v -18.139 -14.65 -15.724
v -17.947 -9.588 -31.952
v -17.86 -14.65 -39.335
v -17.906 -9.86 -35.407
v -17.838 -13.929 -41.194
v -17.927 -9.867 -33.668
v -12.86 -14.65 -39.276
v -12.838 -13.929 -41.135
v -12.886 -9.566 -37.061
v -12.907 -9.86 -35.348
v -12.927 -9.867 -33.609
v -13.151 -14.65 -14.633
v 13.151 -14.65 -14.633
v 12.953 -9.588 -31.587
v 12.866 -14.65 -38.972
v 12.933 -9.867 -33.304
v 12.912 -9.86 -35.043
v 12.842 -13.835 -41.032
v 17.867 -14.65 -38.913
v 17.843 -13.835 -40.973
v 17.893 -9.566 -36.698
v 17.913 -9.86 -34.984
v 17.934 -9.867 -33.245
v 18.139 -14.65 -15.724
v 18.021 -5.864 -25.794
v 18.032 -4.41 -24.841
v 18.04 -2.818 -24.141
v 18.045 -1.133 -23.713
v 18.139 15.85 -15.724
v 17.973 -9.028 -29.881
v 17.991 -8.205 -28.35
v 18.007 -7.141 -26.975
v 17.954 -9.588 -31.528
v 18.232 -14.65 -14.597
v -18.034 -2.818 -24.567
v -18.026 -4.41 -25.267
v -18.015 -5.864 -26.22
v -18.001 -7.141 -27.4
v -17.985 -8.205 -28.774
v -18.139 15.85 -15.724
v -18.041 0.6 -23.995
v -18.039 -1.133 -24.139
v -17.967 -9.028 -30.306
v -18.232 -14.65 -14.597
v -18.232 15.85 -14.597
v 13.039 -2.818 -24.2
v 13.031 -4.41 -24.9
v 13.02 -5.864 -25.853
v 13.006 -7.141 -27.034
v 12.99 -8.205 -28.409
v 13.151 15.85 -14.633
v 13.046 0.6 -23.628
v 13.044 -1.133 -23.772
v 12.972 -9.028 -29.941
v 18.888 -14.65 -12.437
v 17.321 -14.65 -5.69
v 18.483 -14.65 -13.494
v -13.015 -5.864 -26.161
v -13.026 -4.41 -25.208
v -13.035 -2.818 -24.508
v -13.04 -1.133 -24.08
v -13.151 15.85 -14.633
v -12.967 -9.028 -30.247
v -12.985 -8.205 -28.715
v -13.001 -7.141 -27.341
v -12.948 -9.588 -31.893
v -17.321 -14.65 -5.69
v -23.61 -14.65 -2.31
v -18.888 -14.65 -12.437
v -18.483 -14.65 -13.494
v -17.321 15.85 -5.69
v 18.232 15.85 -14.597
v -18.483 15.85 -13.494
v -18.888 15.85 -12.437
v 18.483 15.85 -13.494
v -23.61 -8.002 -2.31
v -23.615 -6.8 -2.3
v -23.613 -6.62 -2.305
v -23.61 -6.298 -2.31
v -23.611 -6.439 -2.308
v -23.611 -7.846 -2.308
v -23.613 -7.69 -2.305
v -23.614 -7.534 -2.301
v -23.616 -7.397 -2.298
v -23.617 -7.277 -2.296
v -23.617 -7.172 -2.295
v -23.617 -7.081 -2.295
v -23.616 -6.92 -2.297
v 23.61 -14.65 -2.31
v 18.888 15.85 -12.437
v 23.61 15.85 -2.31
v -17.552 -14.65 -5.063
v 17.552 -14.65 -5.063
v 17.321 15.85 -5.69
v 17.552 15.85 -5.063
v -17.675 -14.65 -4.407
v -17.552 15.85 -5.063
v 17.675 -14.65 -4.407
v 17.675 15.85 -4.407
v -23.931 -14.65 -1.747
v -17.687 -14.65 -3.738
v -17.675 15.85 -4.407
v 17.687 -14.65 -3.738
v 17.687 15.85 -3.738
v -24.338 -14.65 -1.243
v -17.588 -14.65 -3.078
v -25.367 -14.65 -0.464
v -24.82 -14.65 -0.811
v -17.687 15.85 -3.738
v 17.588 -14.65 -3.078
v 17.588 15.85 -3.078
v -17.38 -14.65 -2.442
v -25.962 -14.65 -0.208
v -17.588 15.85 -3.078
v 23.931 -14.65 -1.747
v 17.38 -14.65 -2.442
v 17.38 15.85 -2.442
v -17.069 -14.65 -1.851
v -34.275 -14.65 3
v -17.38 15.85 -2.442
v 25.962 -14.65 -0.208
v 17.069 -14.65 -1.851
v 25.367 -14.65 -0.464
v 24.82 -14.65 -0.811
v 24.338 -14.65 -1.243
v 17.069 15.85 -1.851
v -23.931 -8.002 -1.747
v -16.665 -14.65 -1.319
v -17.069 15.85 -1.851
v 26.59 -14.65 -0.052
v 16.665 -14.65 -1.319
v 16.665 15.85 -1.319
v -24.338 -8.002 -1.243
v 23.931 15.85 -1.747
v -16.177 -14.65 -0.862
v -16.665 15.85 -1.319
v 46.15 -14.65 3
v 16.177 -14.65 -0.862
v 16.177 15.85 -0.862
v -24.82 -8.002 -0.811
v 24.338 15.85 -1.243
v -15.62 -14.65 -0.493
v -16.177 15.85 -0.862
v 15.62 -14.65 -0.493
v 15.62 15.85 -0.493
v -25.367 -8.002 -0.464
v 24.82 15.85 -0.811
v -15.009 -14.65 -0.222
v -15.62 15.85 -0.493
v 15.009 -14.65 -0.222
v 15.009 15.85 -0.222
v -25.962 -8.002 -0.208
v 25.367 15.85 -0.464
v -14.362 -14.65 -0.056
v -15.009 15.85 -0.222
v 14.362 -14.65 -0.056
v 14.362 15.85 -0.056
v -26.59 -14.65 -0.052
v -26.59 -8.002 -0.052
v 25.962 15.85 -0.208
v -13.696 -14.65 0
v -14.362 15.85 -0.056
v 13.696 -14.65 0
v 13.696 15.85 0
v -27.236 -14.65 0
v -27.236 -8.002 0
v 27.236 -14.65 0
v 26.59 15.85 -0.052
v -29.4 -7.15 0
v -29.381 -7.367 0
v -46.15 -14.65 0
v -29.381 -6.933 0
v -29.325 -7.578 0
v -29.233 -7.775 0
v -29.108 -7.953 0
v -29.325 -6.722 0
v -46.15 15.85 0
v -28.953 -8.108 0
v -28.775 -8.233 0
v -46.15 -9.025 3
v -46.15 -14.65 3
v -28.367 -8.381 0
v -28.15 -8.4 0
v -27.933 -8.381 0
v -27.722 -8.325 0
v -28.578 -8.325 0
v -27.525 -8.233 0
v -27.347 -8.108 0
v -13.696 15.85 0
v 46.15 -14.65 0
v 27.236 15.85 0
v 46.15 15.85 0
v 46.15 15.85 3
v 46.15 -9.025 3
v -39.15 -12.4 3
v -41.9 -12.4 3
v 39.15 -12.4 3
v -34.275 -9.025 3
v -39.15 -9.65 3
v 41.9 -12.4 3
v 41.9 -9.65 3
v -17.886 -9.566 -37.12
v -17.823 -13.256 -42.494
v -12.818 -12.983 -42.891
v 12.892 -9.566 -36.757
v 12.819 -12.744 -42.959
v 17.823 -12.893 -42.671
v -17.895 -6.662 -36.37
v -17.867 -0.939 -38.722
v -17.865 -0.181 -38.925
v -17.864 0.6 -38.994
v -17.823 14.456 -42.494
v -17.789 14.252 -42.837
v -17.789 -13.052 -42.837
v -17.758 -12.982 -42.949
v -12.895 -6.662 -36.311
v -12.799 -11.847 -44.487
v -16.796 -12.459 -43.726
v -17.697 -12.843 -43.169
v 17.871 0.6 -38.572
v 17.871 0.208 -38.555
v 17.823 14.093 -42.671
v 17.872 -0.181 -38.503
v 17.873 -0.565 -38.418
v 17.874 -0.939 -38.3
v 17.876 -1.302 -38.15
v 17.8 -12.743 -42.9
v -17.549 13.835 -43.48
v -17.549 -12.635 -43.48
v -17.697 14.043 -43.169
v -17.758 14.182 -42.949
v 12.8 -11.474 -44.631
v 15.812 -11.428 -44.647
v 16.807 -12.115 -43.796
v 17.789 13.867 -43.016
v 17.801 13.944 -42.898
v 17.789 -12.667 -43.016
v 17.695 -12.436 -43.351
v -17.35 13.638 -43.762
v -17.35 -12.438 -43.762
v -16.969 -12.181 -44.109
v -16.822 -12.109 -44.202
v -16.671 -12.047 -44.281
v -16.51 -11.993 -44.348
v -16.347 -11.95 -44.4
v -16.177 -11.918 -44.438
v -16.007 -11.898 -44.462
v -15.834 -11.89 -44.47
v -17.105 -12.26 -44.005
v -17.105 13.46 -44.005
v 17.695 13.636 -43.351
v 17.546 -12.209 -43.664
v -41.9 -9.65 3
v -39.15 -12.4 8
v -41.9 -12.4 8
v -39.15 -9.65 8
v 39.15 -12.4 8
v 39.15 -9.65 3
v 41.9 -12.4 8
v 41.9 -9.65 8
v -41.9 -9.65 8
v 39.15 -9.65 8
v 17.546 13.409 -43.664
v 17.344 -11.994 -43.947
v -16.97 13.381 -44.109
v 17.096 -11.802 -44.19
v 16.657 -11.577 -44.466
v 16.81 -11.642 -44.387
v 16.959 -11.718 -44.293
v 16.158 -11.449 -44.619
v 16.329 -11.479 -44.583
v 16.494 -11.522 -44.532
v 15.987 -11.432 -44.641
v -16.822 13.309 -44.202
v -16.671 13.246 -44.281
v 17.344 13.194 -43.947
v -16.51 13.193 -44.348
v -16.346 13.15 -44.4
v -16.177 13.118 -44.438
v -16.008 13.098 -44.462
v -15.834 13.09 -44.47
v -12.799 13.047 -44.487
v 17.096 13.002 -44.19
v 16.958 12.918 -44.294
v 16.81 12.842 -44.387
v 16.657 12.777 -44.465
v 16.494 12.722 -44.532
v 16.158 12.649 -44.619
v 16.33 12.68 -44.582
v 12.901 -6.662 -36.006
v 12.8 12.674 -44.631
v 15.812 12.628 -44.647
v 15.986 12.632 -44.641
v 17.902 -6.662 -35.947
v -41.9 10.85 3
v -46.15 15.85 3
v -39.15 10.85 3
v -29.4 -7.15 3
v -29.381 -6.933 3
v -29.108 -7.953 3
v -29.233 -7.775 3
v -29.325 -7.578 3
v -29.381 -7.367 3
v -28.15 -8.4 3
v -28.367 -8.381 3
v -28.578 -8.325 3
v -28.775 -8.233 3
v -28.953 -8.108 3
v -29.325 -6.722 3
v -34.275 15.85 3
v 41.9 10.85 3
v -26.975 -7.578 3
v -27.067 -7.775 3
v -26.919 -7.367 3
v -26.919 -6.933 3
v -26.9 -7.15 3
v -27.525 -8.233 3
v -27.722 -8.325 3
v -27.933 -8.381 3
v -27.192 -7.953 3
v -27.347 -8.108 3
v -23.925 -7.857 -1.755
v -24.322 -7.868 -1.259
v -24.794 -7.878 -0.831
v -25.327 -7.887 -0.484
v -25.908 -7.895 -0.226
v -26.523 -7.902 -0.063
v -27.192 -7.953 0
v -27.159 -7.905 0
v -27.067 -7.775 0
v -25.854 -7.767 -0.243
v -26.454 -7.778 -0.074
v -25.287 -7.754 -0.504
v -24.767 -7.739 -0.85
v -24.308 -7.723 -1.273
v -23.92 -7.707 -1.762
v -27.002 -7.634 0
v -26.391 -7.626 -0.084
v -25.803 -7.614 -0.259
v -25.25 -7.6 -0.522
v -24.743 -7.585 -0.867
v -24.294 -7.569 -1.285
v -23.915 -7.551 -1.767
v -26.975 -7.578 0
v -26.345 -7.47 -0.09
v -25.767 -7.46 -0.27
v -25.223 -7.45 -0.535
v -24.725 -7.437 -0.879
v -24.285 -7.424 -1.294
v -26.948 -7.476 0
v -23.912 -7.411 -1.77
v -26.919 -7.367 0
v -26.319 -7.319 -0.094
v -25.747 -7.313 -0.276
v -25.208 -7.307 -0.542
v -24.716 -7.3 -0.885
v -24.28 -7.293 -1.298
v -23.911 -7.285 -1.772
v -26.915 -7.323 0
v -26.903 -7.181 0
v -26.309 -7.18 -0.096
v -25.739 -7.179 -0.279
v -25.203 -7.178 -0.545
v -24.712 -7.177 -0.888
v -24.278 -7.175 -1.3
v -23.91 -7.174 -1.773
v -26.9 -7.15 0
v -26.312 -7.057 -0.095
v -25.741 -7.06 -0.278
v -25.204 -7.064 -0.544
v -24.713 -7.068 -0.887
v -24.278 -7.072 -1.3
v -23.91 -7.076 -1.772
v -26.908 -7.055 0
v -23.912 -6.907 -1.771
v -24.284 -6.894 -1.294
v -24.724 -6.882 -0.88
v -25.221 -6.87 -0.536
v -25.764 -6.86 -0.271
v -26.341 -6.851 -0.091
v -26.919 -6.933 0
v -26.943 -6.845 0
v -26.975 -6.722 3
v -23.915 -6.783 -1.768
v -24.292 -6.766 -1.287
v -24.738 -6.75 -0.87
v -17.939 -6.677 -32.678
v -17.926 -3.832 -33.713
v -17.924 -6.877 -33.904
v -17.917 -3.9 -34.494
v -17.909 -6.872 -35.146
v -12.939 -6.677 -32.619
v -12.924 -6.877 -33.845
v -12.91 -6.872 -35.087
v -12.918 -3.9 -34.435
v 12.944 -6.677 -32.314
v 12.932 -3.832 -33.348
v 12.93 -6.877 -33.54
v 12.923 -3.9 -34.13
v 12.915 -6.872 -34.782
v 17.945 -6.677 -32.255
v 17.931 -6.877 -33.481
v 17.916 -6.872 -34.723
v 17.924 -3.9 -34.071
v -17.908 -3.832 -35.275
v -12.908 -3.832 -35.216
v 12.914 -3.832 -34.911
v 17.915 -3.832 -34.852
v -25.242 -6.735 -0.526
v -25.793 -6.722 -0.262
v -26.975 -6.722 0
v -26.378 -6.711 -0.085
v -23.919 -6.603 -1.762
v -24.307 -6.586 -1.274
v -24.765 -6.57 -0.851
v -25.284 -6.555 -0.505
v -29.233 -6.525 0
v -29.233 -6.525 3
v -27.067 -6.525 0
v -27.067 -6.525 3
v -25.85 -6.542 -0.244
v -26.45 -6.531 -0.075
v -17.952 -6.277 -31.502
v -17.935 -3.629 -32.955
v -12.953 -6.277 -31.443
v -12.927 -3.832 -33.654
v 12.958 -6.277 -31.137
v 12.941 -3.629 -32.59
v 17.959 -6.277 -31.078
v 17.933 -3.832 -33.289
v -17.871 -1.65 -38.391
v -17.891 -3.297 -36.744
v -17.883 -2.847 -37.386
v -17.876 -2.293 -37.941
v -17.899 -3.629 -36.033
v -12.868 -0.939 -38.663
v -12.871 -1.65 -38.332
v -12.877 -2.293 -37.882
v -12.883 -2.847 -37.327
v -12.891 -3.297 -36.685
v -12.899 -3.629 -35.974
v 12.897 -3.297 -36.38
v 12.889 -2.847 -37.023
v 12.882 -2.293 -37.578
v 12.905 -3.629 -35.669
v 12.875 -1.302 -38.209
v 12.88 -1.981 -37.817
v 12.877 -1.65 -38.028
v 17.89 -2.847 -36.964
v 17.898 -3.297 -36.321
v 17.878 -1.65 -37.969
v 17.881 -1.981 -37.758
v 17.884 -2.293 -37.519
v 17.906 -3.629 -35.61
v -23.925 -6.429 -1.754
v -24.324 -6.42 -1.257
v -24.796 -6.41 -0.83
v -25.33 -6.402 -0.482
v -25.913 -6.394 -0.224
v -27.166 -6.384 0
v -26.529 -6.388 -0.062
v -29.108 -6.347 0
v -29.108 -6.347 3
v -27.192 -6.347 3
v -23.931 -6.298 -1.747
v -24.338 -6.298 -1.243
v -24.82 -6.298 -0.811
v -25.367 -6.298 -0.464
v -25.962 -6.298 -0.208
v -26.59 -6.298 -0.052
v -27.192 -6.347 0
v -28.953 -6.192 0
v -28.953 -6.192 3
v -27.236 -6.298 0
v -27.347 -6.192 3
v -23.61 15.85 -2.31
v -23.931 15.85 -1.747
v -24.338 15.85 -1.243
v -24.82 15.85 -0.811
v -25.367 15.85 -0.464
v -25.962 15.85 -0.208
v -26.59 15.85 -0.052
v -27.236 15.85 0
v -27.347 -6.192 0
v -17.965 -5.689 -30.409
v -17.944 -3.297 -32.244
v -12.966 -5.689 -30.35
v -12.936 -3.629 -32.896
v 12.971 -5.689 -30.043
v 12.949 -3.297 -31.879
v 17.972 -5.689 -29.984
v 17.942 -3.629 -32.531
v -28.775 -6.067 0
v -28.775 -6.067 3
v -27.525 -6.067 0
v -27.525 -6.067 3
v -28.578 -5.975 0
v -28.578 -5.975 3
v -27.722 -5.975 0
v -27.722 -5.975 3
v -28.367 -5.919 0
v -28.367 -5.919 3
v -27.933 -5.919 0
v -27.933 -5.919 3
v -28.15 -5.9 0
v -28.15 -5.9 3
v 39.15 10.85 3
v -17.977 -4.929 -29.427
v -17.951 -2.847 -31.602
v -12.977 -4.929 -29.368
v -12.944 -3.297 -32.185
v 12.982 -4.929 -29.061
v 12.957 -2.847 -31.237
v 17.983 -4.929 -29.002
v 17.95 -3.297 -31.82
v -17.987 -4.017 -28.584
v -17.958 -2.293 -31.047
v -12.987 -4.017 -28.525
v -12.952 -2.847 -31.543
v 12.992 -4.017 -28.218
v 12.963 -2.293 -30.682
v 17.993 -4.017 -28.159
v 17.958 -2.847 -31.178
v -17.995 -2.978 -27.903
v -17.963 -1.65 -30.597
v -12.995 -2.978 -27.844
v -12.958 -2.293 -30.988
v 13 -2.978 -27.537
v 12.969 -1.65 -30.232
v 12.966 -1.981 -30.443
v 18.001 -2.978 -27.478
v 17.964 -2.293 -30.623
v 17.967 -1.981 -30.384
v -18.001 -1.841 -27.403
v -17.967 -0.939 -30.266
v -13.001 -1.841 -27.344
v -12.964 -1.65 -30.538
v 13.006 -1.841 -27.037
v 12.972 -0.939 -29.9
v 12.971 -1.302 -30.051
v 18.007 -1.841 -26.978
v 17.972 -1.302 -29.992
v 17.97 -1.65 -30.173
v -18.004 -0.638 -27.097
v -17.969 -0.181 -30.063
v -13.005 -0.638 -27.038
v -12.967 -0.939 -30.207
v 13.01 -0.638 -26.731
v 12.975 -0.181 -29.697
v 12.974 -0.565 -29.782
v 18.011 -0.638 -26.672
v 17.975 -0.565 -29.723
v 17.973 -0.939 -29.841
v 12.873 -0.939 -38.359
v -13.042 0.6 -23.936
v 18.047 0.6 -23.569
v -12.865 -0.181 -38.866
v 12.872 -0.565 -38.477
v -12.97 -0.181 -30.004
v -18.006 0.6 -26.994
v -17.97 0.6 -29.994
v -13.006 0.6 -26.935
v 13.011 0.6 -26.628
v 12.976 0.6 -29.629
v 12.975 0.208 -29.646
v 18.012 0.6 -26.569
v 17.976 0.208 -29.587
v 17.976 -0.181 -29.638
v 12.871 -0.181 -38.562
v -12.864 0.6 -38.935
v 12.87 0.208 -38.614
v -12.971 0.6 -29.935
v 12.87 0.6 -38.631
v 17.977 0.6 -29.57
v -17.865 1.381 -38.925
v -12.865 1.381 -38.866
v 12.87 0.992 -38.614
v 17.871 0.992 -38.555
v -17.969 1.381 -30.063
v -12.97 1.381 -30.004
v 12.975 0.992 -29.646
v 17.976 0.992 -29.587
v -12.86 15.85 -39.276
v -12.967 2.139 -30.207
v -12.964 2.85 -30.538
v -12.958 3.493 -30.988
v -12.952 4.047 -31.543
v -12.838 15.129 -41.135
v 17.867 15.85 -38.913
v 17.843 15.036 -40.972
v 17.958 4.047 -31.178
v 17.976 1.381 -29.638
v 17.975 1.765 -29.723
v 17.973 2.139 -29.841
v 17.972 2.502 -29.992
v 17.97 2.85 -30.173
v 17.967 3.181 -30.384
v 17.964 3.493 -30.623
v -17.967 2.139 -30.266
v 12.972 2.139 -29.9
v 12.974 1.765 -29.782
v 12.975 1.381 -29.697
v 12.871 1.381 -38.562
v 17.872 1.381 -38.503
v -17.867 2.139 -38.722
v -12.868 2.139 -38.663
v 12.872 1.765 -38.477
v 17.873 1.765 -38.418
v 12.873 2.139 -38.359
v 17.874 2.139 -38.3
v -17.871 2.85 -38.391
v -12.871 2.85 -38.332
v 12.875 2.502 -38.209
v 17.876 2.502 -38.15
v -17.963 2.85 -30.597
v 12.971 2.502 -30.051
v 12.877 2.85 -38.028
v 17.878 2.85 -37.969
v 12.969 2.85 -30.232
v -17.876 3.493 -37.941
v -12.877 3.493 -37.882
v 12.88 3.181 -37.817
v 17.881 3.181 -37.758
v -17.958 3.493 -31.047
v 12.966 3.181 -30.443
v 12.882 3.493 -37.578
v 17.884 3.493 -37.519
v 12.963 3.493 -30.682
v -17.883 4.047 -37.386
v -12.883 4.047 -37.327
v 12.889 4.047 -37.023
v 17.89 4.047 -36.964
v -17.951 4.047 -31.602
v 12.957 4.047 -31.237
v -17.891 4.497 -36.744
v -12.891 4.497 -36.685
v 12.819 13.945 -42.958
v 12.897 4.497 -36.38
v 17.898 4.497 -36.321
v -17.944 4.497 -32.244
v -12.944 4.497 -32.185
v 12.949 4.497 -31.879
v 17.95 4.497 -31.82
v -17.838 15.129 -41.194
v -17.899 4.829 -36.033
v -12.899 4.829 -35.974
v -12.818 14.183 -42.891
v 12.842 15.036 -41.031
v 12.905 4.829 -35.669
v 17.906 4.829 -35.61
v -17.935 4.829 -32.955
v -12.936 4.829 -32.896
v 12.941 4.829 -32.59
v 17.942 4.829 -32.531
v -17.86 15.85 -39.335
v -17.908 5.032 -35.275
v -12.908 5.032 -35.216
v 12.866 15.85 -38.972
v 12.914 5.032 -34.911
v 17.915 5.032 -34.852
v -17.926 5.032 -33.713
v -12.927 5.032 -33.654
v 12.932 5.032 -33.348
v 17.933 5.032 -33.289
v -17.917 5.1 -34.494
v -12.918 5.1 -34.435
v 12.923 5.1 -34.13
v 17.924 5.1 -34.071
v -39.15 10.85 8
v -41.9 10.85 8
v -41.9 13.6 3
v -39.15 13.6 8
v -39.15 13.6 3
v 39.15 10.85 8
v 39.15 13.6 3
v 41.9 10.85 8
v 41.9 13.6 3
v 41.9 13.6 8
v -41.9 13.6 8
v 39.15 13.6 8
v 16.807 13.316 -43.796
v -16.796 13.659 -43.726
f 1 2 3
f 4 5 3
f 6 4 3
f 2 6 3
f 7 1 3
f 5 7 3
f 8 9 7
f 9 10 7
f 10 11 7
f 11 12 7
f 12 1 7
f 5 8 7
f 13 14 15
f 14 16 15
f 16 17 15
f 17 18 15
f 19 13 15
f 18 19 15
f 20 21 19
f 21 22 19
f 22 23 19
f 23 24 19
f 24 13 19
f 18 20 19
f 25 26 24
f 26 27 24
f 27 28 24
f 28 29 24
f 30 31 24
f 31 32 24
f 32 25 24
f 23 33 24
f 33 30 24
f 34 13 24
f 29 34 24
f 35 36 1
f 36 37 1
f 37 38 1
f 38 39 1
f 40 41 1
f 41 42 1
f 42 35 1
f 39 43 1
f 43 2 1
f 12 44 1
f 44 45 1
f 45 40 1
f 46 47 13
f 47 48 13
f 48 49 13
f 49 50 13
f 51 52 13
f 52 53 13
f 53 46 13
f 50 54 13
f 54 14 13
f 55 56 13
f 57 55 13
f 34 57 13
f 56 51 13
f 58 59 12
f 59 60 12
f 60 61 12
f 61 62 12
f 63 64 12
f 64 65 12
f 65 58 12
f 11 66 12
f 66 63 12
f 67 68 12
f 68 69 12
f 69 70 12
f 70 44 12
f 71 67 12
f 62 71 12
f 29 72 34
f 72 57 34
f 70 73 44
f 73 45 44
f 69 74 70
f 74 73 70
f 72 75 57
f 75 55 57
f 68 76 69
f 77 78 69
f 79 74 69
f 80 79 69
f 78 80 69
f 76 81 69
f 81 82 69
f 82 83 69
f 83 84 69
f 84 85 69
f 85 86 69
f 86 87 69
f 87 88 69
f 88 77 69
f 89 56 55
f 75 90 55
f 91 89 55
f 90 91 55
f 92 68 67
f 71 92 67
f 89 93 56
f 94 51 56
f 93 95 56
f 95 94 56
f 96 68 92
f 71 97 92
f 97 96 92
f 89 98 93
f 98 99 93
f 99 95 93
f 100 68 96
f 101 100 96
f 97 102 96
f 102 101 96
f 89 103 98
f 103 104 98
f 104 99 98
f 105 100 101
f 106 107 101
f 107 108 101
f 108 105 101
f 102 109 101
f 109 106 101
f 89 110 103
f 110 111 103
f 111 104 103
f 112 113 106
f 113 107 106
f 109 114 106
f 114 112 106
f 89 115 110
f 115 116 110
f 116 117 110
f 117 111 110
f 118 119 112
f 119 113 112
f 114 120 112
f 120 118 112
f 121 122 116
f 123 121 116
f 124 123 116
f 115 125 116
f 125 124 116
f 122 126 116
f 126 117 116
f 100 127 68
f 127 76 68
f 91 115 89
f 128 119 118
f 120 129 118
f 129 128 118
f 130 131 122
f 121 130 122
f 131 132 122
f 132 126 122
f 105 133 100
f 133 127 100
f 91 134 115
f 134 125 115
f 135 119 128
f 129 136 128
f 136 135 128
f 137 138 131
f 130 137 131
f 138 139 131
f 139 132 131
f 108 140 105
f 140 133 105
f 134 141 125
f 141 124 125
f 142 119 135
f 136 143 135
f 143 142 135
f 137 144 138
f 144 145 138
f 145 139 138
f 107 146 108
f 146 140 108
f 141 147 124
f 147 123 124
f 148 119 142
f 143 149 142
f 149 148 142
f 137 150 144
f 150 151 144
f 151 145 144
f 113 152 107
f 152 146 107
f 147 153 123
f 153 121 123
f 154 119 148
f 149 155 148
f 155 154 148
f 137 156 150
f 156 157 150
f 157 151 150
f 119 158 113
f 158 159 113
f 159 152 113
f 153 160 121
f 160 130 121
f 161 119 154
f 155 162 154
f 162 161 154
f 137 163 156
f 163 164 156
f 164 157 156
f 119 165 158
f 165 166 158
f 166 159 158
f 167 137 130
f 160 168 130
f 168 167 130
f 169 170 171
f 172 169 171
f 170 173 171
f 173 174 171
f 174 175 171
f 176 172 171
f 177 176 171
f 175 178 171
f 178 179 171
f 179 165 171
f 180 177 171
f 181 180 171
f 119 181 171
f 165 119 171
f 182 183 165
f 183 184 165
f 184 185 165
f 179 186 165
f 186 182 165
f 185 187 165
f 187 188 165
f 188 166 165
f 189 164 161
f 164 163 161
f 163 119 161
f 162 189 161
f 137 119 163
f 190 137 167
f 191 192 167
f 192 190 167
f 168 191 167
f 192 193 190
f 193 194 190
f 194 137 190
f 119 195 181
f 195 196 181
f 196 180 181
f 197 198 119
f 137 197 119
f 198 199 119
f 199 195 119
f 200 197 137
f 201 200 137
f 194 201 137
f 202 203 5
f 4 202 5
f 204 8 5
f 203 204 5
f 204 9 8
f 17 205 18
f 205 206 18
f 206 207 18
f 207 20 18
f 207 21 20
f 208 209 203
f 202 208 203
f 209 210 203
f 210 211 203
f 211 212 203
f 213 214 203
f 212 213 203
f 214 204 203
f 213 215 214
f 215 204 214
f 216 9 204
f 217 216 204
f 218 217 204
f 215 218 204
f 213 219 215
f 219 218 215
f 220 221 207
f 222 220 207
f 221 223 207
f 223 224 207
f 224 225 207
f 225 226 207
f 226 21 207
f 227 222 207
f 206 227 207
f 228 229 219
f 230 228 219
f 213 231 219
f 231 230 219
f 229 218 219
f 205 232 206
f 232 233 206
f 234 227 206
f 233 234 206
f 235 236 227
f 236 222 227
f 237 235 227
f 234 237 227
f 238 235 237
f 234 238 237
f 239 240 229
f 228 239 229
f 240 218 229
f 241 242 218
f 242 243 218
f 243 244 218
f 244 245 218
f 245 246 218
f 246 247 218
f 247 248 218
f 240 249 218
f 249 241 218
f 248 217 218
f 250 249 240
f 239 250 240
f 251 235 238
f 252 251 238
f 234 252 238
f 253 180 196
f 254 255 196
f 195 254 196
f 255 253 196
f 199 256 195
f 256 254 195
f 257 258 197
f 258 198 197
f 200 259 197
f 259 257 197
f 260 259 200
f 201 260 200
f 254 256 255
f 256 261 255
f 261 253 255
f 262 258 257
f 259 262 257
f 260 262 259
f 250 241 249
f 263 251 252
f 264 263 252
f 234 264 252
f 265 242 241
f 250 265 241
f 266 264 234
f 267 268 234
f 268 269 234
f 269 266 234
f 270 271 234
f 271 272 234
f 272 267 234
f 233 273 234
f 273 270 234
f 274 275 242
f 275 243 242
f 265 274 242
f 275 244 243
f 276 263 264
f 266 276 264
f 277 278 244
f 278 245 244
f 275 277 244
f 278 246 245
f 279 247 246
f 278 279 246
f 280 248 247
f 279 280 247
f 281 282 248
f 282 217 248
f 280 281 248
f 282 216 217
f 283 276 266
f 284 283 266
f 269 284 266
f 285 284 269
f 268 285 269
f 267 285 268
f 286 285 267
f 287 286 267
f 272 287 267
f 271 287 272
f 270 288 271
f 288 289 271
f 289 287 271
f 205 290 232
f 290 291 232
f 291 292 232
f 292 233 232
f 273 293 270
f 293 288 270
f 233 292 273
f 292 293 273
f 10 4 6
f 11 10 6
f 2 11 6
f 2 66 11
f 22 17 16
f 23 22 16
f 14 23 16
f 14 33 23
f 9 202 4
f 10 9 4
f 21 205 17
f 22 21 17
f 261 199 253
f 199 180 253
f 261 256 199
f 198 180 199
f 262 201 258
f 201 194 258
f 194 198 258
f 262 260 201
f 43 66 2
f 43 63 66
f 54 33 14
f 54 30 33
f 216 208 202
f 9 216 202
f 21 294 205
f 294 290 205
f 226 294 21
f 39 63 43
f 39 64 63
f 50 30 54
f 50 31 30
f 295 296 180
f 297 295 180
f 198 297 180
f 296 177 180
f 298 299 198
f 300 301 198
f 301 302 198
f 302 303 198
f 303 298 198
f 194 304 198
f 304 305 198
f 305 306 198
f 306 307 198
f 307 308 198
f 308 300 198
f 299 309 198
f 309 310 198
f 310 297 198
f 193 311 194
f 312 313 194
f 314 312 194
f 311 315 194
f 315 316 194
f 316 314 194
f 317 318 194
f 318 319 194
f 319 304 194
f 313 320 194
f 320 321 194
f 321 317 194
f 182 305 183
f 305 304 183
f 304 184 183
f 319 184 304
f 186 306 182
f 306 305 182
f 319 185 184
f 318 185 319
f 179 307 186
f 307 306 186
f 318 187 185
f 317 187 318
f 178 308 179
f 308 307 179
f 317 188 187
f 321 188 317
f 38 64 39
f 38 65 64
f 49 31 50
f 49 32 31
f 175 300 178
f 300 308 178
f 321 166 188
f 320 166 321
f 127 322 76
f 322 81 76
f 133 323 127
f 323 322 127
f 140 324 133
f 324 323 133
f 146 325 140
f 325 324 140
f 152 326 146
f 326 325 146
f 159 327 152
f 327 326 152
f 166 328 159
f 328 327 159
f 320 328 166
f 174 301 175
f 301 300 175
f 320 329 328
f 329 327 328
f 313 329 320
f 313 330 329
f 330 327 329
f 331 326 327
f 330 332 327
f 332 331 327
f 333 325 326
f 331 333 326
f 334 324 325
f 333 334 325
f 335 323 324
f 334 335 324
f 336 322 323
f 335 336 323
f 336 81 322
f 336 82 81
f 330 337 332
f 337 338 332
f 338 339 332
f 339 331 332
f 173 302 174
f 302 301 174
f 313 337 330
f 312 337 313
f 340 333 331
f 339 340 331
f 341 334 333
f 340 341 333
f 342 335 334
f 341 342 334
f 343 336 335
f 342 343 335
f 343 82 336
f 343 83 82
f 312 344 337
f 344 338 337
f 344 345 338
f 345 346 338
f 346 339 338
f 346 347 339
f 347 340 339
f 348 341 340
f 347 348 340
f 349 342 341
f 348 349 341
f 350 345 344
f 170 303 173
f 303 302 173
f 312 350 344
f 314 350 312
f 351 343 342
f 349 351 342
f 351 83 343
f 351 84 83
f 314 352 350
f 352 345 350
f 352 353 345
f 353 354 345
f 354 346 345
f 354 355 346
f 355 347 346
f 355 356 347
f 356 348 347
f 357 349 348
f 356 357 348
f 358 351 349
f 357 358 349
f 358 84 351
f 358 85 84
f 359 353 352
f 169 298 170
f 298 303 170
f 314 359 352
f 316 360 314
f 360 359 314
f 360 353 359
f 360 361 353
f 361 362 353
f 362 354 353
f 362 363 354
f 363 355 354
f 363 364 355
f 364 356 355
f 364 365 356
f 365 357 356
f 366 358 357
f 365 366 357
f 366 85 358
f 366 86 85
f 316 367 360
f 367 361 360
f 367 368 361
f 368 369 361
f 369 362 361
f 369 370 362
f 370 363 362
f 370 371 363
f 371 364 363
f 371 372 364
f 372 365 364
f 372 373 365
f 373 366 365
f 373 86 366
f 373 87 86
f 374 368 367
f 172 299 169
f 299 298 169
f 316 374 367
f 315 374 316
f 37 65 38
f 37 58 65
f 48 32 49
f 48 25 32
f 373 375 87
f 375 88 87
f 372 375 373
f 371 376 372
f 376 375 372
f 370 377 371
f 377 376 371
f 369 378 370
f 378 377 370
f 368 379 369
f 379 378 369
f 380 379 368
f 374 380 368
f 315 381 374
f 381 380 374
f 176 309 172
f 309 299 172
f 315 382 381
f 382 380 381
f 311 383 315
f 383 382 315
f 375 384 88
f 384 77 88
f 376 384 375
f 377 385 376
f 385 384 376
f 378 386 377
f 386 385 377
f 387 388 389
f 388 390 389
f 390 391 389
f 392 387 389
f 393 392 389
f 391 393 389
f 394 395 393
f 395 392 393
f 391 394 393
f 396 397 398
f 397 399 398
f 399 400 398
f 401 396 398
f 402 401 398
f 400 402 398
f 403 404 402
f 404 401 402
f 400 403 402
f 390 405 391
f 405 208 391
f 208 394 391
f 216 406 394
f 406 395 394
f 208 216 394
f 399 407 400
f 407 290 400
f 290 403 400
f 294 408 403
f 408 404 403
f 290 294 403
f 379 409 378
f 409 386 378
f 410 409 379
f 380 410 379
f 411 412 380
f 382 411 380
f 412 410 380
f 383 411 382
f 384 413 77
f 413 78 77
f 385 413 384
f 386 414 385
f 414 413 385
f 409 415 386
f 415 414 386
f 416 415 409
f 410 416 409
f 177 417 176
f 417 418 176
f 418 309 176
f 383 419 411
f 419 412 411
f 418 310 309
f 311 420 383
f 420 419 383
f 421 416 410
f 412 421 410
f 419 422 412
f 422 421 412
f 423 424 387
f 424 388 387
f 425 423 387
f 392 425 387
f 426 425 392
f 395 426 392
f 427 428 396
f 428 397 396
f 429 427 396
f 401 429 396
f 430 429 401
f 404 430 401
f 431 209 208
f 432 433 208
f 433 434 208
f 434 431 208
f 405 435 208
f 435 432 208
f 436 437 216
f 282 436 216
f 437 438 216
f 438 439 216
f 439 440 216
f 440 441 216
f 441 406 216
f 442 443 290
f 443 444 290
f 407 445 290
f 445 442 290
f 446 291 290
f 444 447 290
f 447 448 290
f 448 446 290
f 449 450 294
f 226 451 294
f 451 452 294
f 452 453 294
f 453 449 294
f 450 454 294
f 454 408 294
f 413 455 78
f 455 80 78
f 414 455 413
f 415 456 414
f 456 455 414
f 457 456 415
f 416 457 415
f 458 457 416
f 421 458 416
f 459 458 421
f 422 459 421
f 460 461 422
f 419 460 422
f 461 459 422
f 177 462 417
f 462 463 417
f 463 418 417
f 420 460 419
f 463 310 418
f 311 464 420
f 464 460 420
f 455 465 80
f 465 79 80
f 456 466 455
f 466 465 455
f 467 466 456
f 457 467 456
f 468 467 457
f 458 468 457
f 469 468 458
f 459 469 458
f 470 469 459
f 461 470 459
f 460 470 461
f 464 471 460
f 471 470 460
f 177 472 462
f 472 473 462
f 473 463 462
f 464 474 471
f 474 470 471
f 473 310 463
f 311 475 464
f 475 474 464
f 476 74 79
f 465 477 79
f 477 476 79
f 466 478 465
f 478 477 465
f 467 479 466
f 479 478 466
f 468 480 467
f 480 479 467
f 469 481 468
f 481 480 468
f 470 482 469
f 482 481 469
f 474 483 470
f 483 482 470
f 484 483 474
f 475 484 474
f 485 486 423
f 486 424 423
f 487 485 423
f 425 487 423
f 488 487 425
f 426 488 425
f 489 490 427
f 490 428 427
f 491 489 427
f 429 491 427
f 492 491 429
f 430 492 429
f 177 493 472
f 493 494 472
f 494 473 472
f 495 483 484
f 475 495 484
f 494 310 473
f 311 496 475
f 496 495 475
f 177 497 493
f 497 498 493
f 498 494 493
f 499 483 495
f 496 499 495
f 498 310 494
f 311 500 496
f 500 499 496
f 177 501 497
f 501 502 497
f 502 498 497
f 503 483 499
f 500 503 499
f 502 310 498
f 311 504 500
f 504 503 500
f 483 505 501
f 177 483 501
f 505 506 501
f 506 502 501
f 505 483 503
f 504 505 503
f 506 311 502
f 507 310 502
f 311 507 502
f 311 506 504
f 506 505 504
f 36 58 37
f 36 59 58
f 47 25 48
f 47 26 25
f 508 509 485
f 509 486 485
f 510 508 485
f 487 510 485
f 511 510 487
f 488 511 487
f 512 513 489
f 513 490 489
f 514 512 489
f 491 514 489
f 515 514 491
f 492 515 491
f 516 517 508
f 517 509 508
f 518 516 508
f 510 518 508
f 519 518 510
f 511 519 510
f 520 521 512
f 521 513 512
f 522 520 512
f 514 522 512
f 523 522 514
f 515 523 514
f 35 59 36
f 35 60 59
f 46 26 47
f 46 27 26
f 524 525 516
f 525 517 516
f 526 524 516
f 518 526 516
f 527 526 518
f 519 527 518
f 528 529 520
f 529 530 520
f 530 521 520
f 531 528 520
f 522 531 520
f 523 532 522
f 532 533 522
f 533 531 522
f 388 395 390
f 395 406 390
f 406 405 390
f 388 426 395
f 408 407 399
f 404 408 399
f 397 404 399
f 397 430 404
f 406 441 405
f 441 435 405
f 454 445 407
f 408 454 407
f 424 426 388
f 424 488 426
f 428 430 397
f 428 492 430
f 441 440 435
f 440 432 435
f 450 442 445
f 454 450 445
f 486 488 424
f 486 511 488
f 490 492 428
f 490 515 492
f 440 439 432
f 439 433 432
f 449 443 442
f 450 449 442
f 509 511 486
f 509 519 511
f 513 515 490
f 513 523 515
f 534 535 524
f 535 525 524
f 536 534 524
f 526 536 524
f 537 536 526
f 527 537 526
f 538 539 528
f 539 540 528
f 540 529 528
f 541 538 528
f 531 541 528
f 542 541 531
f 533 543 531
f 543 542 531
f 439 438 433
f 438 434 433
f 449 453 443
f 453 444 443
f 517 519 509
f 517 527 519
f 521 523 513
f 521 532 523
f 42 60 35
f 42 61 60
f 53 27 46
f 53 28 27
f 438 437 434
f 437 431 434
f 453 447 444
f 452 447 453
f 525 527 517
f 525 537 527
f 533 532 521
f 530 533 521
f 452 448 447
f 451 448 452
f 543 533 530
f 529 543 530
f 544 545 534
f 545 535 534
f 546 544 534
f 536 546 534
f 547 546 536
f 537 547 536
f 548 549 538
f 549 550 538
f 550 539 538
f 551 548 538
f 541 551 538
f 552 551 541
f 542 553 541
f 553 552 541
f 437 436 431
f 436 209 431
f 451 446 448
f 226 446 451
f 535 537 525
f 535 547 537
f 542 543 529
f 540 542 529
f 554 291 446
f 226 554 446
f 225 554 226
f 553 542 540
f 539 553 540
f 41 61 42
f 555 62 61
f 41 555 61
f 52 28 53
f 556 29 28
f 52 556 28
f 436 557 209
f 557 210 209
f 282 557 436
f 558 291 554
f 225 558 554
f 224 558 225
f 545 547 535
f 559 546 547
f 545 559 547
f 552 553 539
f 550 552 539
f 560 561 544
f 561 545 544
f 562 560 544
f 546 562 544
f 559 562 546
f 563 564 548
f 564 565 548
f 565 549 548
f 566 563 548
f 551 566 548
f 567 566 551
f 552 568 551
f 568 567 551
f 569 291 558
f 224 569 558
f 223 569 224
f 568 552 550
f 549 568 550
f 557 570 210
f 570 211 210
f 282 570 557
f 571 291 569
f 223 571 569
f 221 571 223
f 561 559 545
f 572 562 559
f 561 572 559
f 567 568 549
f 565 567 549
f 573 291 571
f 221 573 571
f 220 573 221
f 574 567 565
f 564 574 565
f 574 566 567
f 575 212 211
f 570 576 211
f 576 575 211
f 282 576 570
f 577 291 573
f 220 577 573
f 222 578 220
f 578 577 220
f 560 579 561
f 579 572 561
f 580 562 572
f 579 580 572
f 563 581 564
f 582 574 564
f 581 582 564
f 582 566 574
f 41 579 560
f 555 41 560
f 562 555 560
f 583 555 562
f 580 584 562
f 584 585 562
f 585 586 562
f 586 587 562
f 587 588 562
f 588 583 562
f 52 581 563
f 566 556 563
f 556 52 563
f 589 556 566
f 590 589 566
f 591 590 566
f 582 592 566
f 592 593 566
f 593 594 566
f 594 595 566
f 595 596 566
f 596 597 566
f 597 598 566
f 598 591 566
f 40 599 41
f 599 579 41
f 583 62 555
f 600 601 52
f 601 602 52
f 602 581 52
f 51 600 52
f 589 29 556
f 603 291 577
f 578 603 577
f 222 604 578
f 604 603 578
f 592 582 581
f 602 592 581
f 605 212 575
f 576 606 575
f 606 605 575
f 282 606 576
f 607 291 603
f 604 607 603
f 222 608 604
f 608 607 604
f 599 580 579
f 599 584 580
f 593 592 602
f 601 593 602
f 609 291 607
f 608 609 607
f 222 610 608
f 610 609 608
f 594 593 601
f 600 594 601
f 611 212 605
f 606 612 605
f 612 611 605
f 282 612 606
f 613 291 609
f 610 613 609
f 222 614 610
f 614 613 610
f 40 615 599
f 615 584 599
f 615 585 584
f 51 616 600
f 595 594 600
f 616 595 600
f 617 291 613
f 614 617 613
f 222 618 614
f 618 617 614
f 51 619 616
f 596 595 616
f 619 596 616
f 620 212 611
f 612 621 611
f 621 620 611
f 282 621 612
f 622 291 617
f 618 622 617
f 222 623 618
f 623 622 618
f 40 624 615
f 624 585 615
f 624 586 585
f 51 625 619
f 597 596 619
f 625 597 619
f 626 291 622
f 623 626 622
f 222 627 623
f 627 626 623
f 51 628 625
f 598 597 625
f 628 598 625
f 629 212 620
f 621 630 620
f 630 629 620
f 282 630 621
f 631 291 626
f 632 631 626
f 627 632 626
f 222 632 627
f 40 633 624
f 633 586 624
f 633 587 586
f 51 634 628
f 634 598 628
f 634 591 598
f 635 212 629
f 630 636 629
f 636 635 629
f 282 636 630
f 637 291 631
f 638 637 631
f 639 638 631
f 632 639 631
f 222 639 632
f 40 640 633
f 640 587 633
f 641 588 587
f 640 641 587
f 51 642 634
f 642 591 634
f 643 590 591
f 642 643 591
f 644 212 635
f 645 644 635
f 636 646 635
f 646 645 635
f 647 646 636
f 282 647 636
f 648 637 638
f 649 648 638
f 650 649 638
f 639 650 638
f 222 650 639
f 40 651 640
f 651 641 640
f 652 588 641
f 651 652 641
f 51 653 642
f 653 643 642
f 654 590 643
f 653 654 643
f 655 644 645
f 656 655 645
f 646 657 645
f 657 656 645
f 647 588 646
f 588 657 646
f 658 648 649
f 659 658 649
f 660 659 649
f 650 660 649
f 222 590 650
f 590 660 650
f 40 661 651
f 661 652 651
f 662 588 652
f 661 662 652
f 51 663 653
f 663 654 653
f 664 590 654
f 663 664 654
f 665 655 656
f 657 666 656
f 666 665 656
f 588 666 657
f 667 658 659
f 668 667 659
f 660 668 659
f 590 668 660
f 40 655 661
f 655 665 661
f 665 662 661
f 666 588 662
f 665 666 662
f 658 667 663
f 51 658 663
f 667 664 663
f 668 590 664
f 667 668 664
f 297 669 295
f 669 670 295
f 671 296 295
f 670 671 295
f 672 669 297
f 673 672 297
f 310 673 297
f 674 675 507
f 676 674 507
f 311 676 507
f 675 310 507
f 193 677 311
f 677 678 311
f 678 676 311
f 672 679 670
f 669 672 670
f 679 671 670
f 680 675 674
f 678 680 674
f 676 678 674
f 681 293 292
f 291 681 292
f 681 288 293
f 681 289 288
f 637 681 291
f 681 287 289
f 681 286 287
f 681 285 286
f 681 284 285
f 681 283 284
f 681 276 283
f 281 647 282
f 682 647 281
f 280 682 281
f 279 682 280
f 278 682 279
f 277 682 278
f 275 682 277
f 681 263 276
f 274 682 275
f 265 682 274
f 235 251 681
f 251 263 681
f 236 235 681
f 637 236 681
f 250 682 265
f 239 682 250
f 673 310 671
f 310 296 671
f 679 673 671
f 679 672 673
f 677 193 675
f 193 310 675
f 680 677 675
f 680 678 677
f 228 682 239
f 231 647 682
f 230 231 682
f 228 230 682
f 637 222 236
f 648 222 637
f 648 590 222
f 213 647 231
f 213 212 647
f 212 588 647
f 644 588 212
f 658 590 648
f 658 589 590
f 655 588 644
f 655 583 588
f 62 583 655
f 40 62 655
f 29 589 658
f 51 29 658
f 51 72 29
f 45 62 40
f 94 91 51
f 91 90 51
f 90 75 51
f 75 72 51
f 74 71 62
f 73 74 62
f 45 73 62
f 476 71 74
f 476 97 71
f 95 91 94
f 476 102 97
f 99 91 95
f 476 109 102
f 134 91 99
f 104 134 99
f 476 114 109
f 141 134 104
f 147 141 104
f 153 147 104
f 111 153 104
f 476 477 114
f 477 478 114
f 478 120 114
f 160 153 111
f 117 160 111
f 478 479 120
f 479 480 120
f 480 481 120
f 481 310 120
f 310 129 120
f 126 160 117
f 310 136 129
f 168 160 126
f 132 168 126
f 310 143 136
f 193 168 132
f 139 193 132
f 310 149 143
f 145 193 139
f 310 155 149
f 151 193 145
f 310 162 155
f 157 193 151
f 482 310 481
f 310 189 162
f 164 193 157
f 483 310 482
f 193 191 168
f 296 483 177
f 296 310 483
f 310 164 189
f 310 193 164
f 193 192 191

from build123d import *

# Parameters (mm, degrees)
SKETCH1_W           = 92.3
SKETCH1_H           = 30.5
SKETCH1_W_2         = 84.3
SKETCH1_H_2         = 26.5
BOSS_EXTRUDE1_DEPTH = 3
SKETCH2_W           = 3
SKETCH2_H           = 3
BOSS_EXTRUDE2_DEPTH = 5
SKETCH13_W          = 92.3
SKETCH13_H          = 30.5
SKETCH13_W_2        = 83.8
SKETCH13_H_2        = 26
CUT_EXTRUDE9_DEPTH  = 5
SKETCH12_R          = 1.25
CUT_EXTRUDE8_DEPTH  = 12
BOSS_EXTRUDE4_DEPTH = 30.5
FILLET1_R           = 4
SKETCH15_R          = 4.5
CUT_EXTRUDE10_DEPTH = 51


with BuildPart() as part:
    # Sketch1 → Boss-Extrude1 (new body)
    # profile 1 of 2: a face of its own
    with BuildSketch(Plane.XY):
        with Locations((0, 0.6)):
            Rectangle(SKETCH1_W, SKETCH1_H)
        with Locations((0, 0.6)):
            Rectangle(SKETCH1_W_2, SKETCH1_H_2, mode=Mode.SUBTRACT)
    # profile 2 of 2: a face of its own
    with BuildSketch(Plane.XY):
        with Locations((0, 0.6)):
            Rectangle(SKETCH1_W_2, SKETCH1_H_2)
    extrude(amount=BOSS_EXTRUDE1_DEPTH)

    # Sketch2 → Boss-Extrude2 (add)
    with BuildSketch(Plane.XY.offset(3)):
        with Locations((-40.65, 12.35)):
            Rectangle(SKETCH2_W, SKETCH2_H)
        with Locations((40.65, 12.35)):
            Rectangle(SKETCH2_W, SKETCH2_H)
        with Locations((40.65, -11.15)):
            Rectangle(SKETCH2_W, SKETCH2_H)
        with Locations((-40.65, -11.15)):
            Rectangle(SKETCH2_W, SKETCH2_H)
    extrude(amount=BOSS_EXTRUDE2_DEPTH)

    # Sketch13 → Cut-Extrude9 (cut)
    with BuildSketch(Plane.XY.offset(8)):
        with Locations((0, 0.6)):
            Rectangle(SKETCH13_W, SKETCH13_H)
        with Locations((0, 0.6)):
            Rectangle(SKETCH13_W_2, SKETCH13_H_2, mode=Mode.SUBTRACT)
    extrude(amount=-CUT_EXTRUDE9_DEPTH, mode=Mode.SUBTRACT)

    # Sketch12 → Cut-Extrude8 (cut)
    with BuildSketch(Plane.XY.offset(3)):
        with Locations((-28.15, -7.15)):
            Circle(SKETCH12_R)
    extrude(amount=-CUT_EXTRUDE8_DEPTH, mode=Mode.SUBTRACT)

    # Sketch14 → Boss-Extrude4 (add)
    with BuildSketch(Plane(origin=(0, 15.85, 0), x_dir=(1, 0, 0), z_dir=(0, 1, 0))):
        with BuildLine():
            Line((12.799828546, 44.630563997), (13.151366909, 14.632623721))
            Line((13.151366909, 14.632623721), (19.974671409, 0))
            Line((19.974671409, 0), (24.687430993, 0))
            Line((24.687430993, 0), (18.887905283, 12.437123022))
            ThreePointArc((18.887905283, 12.437123022), (18.338278668, 14.040820406), (18.138916839, 15.724325552))
            Line((18.138916839, 15.724325552), (17.823136491, 42.670915272))
            ThreePointArc((17.823136491, 42.670915272), (17.22518506, 44.073889153), (15.812063723, 44.647447965))
            Line((15.812063723, 44.647447965), (12.799828546, 44.630563997))
        make_face()
        with BuildLine():
            Line((-13.151397234, 14.632558688), (-12.798784772, 44.487080457))
            Line((-12.798784772, 44.487080457), (-15.83402069, 44.470067567))
            ThreePointArc((-15.83402069, 44.470067567), (-17.23263166, 43.888691454), (-17.822671194, 42.493713254))
            Line((-17.822671194, 42.493713254), (-18.138767444, 15.72395041))
            ThreePointArc((-18.138767444, 15.72395041), (-18.338200149, 14.040810917), (-18.887747495, 12.4374614))
            Line((-18.887747495, 12.4374614), (-24.687430993, 0))
            Line((-24.687430993, 0), (-19.974671409, 0))
            Line((-19.974671409, 0), (-13.151397234, 14.632558688))
        make_face()
    extrude(amount=-BOSS_EXTRUDE4_DEPTH)

    # Fillet1
    fillet1_edges = [part.edges().sort_by_distance(p)[0] for p in [
        (24.687430993, 0.6, 0),
        (19.974671409, 0.6, 0),
        (-19.974671409, 0.6, 0),
        (-24.687430993, 0.6, 0),
    ]]
    fillet(fillet1_edges, radius=FILLET1_R)

    # Sketch15 → Cut-Extrude10 (cut)
    with BuildSketch(Plane(origin=(-18.321880618, 0, -0.216344007), x_dir=(-0.011807135462763681, 0, 0.9999302933465732), z_dir=(-0.9999302933465732, 0, -0.011807135462763681))):
        with Locations((-34.28001328, 0.6)):
            Circle(SKETCH15_R)
        with BuildLine():
            Line((-39.121242463, 15.85), (-39.121242463, 17.869989606))
            Line((-39.121242463, 17.869989606), (-55.967413811, 17.869989606))
            Line((-55.967413811, 17.869989606), (-55.967413811, -17.820804899))
            Line((-55.967413811, -17.820804899), (-39.121242463, -17.820804899))
            Line((-39.121242463, -17.820804899), (-39.121242463, -14.65))
            ThreePointArc((-39.121242463, -14.65), (-50.28001328, 0.6), (-39.121242463, 15.85))
        make_face()
        with BuildLine():
            Line((-36.156004252, -6.661587834), (-36.90640064, -9.566222968))
            ThreePointArc((-36.90640064, -9.566222968), (-27.850669118, -7.701417568), (-23.78001328, 0.6))
            Line((-23.78001328, 0.6), (-26.78001328, 0.6))
            ThreePointArc((-26.78001328, 0.6), (-29.687624593, -5.329583977), (-36.156004252, -6.661587834))
        make_face()
    extrude(amount=-CUT_EXTRUDE10_DEPTH, mode=Mode.SUBTRACT)


solid = part.part
